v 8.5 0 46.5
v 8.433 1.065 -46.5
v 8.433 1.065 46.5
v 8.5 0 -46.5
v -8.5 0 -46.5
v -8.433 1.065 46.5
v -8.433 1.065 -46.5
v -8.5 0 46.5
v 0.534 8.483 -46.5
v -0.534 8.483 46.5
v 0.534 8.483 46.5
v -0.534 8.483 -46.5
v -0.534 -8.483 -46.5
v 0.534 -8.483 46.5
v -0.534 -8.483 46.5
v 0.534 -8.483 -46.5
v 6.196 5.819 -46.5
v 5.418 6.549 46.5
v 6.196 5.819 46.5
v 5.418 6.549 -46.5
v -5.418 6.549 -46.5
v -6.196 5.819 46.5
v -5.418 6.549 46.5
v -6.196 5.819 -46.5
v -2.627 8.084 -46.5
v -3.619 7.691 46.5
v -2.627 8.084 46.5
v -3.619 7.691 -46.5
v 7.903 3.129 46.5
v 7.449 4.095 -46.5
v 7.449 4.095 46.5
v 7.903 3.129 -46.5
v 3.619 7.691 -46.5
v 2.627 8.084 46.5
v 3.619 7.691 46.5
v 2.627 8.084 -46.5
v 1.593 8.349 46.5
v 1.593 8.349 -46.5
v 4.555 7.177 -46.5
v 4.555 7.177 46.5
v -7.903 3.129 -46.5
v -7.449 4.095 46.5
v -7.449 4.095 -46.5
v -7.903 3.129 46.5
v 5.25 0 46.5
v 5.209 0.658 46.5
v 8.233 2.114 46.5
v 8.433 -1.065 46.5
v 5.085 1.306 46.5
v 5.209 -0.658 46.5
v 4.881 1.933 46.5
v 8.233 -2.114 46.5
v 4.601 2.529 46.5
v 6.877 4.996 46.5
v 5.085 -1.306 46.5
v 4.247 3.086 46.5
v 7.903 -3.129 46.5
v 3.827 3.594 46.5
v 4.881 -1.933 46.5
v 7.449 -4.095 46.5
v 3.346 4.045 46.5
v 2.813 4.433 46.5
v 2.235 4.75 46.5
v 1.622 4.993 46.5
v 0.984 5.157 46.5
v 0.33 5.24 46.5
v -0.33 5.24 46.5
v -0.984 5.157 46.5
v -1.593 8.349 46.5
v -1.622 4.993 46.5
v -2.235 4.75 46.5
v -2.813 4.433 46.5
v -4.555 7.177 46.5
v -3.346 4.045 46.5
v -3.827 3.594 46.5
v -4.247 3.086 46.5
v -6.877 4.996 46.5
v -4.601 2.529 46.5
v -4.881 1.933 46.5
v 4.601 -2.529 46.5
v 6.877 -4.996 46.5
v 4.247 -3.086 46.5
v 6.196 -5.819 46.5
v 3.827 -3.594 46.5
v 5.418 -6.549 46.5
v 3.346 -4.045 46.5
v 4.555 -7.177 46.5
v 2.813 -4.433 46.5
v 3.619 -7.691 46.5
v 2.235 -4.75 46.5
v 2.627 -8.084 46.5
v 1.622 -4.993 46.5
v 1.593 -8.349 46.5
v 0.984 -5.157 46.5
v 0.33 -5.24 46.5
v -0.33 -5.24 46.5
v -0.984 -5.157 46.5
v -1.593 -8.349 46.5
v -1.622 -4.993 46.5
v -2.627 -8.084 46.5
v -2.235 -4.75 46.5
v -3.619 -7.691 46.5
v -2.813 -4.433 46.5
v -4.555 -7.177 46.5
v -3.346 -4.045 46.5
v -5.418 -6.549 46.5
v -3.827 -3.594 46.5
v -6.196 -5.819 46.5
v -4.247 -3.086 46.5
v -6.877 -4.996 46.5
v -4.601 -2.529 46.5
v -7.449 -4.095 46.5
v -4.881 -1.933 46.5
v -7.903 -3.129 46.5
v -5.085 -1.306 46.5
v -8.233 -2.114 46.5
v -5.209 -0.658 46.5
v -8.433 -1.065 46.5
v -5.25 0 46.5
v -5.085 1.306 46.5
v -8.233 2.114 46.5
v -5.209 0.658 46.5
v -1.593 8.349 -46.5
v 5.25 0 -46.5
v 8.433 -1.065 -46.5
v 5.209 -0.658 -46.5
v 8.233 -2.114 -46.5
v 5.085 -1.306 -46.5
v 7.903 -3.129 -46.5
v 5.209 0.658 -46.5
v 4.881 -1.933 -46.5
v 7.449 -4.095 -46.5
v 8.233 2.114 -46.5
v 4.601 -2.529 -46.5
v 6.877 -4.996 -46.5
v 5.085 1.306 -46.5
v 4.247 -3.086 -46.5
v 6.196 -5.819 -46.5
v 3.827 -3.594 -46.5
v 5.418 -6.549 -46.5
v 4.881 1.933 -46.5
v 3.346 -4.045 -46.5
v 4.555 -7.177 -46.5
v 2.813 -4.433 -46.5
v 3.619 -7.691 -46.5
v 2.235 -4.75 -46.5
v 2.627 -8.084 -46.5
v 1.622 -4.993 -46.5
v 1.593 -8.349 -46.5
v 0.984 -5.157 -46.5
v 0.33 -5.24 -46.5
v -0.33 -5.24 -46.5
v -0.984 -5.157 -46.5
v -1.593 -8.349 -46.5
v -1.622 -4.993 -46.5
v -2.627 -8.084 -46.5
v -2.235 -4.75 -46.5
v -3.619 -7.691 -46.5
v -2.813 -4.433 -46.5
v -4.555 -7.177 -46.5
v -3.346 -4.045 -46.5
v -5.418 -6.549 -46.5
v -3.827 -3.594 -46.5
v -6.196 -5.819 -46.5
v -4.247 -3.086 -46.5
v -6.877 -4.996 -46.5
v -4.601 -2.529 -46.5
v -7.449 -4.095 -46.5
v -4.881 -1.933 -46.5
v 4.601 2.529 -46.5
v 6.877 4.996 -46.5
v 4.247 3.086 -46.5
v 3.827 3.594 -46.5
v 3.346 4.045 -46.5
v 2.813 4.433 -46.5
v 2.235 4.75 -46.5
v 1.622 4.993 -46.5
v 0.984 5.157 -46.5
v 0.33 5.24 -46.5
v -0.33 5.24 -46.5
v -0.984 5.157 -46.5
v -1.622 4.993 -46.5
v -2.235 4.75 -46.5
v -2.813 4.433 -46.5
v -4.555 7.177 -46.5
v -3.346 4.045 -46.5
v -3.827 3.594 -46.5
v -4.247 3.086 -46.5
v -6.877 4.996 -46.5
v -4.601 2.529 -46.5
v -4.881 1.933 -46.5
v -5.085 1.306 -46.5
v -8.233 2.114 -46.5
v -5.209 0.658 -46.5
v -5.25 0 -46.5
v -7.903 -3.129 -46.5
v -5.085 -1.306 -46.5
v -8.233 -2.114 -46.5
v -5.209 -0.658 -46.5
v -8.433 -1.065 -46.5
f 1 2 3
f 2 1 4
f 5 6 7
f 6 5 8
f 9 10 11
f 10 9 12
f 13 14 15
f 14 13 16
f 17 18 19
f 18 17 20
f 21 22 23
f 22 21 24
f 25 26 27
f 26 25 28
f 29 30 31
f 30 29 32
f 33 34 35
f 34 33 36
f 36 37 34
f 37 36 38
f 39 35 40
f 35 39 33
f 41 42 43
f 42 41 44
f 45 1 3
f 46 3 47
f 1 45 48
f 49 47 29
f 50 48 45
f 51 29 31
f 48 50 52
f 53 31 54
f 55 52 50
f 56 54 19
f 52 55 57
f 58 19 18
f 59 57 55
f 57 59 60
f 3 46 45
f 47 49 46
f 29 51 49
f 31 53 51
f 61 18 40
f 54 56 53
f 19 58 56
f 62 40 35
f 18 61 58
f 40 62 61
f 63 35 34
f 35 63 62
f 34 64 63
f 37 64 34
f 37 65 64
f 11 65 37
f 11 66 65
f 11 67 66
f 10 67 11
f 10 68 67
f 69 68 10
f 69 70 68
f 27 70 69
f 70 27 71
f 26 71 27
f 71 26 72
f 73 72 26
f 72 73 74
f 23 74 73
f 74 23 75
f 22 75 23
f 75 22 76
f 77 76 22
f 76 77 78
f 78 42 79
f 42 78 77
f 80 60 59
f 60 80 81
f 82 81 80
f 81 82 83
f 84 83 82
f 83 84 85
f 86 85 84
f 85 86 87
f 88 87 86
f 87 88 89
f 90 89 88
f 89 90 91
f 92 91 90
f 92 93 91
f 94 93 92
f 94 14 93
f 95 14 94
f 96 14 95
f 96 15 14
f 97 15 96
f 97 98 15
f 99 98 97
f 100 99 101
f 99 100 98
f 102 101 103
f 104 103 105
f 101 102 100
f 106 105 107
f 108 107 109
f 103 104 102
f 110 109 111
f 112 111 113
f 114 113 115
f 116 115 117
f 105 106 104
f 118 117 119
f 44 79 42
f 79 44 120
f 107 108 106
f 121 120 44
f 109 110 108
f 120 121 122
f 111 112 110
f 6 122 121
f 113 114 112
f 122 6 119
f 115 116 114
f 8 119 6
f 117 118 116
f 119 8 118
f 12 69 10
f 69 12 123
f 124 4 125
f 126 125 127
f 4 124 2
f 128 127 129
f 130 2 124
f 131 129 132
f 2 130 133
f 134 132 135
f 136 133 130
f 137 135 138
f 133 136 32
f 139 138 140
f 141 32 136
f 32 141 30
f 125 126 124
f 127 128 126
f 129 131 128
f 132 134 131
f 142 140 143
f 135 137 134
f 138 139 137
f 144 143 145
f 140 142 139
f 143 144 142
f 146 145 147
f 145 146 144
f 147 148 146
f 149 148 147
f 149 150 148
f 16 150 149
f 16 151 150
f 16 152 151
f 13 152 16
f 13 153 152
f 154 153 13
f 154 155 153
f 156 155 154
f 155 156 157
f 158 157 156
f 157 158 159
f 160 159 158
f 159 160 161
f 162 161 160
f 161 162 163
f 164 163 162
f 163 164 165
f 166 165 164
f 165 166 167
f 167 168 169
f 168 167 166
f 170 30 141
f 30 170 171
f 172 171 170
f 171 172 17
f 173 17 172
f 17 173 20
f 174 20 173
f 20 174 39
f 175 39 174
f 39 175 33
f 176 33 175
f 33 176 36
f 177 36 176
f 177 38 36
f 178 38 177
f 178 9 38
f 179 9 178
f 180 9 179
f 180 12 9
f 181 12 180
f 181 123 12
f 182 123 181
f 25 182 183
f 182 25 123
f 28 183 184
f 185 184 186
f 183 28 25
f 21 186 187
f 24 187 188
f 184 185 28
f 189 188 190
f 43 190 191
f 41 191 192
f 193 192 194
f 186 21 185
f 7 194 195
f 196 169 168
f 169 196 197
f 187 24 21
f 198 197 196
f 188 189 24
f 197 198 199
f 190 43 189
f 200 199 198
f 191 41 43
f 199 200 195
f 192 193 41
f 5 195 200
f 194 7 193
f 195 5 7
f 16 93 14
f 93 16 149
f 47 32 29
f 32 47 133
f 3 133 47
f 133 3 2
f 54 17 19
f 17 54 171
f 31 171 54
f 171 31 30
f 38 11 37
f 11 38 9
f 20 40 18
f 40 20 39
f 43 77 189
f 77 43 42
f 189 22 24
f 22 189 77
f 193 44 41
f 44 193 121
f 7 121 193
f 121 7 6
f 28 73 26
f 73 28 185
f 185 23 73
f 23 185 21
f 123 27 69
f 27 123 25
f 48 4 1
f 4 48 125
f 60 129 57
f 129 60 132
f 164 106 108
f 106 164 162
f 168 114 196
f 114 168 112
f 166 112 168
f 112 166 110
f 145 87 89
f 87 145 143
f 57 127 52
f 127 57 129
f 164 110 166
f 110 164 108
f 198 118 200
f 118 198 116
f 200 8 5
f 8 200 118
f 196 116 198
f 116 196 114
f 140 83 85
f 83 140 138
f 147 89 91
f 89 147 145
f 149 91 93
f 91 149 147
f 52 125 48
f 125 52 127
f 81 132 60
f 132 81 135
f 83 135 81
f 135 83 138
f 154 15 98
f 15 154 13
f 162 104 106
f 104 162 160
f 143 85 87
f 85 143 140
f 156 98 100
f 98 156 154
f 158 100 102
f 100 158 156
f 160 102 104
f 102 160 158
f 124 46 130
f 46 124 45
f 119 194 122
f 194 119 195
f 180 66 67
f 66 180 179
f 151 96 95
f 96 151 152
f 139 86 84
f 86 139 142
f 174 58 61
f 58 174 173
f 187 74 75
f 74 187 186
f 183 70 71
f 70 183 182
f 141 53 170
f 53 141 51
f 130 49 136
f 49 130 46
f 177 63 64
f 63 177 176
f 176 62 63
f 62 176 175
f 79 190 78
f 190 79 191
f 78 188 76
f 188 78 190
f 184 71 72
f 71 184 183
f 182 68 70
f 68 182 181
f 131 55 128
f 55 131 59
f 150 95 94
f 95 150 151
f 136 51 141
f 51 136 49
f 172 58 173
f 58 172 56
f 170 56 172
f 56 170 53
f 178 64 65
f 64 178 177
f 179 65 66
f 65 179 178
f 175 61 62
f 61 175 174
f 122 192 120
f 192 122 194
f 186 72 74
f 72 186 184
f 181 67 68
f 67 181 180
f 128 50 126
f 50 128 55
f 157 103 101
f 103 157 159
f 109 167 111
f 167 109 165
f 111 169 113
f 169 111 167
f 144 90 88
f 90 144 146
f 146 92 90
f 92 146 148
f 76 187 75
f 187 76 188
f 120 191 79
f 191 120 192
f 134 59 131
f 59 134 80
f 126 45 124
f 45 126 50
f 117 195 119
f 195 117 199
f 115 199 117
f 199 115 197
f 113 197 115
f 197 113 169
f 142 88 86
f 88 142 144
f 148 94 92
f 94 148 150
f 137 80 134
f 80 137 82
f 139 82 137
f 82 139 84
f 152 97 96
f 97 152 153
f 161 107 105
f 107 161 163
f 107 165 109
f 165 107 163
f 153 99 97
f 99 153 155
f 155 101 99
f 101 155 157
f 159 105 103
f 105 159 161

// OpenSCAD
$fn = 50;


difference() {
	union() {
		translate(v = [0, 0, -46.5000000000]) {
			cylinder(h = 93, r = 8.5000000000);
		}
	}
	union() {
		translate(v = [0, 0, -100.0000000000]) {
			cylinder(h = 200, r = 5.2500000000);
		}
	}
}
